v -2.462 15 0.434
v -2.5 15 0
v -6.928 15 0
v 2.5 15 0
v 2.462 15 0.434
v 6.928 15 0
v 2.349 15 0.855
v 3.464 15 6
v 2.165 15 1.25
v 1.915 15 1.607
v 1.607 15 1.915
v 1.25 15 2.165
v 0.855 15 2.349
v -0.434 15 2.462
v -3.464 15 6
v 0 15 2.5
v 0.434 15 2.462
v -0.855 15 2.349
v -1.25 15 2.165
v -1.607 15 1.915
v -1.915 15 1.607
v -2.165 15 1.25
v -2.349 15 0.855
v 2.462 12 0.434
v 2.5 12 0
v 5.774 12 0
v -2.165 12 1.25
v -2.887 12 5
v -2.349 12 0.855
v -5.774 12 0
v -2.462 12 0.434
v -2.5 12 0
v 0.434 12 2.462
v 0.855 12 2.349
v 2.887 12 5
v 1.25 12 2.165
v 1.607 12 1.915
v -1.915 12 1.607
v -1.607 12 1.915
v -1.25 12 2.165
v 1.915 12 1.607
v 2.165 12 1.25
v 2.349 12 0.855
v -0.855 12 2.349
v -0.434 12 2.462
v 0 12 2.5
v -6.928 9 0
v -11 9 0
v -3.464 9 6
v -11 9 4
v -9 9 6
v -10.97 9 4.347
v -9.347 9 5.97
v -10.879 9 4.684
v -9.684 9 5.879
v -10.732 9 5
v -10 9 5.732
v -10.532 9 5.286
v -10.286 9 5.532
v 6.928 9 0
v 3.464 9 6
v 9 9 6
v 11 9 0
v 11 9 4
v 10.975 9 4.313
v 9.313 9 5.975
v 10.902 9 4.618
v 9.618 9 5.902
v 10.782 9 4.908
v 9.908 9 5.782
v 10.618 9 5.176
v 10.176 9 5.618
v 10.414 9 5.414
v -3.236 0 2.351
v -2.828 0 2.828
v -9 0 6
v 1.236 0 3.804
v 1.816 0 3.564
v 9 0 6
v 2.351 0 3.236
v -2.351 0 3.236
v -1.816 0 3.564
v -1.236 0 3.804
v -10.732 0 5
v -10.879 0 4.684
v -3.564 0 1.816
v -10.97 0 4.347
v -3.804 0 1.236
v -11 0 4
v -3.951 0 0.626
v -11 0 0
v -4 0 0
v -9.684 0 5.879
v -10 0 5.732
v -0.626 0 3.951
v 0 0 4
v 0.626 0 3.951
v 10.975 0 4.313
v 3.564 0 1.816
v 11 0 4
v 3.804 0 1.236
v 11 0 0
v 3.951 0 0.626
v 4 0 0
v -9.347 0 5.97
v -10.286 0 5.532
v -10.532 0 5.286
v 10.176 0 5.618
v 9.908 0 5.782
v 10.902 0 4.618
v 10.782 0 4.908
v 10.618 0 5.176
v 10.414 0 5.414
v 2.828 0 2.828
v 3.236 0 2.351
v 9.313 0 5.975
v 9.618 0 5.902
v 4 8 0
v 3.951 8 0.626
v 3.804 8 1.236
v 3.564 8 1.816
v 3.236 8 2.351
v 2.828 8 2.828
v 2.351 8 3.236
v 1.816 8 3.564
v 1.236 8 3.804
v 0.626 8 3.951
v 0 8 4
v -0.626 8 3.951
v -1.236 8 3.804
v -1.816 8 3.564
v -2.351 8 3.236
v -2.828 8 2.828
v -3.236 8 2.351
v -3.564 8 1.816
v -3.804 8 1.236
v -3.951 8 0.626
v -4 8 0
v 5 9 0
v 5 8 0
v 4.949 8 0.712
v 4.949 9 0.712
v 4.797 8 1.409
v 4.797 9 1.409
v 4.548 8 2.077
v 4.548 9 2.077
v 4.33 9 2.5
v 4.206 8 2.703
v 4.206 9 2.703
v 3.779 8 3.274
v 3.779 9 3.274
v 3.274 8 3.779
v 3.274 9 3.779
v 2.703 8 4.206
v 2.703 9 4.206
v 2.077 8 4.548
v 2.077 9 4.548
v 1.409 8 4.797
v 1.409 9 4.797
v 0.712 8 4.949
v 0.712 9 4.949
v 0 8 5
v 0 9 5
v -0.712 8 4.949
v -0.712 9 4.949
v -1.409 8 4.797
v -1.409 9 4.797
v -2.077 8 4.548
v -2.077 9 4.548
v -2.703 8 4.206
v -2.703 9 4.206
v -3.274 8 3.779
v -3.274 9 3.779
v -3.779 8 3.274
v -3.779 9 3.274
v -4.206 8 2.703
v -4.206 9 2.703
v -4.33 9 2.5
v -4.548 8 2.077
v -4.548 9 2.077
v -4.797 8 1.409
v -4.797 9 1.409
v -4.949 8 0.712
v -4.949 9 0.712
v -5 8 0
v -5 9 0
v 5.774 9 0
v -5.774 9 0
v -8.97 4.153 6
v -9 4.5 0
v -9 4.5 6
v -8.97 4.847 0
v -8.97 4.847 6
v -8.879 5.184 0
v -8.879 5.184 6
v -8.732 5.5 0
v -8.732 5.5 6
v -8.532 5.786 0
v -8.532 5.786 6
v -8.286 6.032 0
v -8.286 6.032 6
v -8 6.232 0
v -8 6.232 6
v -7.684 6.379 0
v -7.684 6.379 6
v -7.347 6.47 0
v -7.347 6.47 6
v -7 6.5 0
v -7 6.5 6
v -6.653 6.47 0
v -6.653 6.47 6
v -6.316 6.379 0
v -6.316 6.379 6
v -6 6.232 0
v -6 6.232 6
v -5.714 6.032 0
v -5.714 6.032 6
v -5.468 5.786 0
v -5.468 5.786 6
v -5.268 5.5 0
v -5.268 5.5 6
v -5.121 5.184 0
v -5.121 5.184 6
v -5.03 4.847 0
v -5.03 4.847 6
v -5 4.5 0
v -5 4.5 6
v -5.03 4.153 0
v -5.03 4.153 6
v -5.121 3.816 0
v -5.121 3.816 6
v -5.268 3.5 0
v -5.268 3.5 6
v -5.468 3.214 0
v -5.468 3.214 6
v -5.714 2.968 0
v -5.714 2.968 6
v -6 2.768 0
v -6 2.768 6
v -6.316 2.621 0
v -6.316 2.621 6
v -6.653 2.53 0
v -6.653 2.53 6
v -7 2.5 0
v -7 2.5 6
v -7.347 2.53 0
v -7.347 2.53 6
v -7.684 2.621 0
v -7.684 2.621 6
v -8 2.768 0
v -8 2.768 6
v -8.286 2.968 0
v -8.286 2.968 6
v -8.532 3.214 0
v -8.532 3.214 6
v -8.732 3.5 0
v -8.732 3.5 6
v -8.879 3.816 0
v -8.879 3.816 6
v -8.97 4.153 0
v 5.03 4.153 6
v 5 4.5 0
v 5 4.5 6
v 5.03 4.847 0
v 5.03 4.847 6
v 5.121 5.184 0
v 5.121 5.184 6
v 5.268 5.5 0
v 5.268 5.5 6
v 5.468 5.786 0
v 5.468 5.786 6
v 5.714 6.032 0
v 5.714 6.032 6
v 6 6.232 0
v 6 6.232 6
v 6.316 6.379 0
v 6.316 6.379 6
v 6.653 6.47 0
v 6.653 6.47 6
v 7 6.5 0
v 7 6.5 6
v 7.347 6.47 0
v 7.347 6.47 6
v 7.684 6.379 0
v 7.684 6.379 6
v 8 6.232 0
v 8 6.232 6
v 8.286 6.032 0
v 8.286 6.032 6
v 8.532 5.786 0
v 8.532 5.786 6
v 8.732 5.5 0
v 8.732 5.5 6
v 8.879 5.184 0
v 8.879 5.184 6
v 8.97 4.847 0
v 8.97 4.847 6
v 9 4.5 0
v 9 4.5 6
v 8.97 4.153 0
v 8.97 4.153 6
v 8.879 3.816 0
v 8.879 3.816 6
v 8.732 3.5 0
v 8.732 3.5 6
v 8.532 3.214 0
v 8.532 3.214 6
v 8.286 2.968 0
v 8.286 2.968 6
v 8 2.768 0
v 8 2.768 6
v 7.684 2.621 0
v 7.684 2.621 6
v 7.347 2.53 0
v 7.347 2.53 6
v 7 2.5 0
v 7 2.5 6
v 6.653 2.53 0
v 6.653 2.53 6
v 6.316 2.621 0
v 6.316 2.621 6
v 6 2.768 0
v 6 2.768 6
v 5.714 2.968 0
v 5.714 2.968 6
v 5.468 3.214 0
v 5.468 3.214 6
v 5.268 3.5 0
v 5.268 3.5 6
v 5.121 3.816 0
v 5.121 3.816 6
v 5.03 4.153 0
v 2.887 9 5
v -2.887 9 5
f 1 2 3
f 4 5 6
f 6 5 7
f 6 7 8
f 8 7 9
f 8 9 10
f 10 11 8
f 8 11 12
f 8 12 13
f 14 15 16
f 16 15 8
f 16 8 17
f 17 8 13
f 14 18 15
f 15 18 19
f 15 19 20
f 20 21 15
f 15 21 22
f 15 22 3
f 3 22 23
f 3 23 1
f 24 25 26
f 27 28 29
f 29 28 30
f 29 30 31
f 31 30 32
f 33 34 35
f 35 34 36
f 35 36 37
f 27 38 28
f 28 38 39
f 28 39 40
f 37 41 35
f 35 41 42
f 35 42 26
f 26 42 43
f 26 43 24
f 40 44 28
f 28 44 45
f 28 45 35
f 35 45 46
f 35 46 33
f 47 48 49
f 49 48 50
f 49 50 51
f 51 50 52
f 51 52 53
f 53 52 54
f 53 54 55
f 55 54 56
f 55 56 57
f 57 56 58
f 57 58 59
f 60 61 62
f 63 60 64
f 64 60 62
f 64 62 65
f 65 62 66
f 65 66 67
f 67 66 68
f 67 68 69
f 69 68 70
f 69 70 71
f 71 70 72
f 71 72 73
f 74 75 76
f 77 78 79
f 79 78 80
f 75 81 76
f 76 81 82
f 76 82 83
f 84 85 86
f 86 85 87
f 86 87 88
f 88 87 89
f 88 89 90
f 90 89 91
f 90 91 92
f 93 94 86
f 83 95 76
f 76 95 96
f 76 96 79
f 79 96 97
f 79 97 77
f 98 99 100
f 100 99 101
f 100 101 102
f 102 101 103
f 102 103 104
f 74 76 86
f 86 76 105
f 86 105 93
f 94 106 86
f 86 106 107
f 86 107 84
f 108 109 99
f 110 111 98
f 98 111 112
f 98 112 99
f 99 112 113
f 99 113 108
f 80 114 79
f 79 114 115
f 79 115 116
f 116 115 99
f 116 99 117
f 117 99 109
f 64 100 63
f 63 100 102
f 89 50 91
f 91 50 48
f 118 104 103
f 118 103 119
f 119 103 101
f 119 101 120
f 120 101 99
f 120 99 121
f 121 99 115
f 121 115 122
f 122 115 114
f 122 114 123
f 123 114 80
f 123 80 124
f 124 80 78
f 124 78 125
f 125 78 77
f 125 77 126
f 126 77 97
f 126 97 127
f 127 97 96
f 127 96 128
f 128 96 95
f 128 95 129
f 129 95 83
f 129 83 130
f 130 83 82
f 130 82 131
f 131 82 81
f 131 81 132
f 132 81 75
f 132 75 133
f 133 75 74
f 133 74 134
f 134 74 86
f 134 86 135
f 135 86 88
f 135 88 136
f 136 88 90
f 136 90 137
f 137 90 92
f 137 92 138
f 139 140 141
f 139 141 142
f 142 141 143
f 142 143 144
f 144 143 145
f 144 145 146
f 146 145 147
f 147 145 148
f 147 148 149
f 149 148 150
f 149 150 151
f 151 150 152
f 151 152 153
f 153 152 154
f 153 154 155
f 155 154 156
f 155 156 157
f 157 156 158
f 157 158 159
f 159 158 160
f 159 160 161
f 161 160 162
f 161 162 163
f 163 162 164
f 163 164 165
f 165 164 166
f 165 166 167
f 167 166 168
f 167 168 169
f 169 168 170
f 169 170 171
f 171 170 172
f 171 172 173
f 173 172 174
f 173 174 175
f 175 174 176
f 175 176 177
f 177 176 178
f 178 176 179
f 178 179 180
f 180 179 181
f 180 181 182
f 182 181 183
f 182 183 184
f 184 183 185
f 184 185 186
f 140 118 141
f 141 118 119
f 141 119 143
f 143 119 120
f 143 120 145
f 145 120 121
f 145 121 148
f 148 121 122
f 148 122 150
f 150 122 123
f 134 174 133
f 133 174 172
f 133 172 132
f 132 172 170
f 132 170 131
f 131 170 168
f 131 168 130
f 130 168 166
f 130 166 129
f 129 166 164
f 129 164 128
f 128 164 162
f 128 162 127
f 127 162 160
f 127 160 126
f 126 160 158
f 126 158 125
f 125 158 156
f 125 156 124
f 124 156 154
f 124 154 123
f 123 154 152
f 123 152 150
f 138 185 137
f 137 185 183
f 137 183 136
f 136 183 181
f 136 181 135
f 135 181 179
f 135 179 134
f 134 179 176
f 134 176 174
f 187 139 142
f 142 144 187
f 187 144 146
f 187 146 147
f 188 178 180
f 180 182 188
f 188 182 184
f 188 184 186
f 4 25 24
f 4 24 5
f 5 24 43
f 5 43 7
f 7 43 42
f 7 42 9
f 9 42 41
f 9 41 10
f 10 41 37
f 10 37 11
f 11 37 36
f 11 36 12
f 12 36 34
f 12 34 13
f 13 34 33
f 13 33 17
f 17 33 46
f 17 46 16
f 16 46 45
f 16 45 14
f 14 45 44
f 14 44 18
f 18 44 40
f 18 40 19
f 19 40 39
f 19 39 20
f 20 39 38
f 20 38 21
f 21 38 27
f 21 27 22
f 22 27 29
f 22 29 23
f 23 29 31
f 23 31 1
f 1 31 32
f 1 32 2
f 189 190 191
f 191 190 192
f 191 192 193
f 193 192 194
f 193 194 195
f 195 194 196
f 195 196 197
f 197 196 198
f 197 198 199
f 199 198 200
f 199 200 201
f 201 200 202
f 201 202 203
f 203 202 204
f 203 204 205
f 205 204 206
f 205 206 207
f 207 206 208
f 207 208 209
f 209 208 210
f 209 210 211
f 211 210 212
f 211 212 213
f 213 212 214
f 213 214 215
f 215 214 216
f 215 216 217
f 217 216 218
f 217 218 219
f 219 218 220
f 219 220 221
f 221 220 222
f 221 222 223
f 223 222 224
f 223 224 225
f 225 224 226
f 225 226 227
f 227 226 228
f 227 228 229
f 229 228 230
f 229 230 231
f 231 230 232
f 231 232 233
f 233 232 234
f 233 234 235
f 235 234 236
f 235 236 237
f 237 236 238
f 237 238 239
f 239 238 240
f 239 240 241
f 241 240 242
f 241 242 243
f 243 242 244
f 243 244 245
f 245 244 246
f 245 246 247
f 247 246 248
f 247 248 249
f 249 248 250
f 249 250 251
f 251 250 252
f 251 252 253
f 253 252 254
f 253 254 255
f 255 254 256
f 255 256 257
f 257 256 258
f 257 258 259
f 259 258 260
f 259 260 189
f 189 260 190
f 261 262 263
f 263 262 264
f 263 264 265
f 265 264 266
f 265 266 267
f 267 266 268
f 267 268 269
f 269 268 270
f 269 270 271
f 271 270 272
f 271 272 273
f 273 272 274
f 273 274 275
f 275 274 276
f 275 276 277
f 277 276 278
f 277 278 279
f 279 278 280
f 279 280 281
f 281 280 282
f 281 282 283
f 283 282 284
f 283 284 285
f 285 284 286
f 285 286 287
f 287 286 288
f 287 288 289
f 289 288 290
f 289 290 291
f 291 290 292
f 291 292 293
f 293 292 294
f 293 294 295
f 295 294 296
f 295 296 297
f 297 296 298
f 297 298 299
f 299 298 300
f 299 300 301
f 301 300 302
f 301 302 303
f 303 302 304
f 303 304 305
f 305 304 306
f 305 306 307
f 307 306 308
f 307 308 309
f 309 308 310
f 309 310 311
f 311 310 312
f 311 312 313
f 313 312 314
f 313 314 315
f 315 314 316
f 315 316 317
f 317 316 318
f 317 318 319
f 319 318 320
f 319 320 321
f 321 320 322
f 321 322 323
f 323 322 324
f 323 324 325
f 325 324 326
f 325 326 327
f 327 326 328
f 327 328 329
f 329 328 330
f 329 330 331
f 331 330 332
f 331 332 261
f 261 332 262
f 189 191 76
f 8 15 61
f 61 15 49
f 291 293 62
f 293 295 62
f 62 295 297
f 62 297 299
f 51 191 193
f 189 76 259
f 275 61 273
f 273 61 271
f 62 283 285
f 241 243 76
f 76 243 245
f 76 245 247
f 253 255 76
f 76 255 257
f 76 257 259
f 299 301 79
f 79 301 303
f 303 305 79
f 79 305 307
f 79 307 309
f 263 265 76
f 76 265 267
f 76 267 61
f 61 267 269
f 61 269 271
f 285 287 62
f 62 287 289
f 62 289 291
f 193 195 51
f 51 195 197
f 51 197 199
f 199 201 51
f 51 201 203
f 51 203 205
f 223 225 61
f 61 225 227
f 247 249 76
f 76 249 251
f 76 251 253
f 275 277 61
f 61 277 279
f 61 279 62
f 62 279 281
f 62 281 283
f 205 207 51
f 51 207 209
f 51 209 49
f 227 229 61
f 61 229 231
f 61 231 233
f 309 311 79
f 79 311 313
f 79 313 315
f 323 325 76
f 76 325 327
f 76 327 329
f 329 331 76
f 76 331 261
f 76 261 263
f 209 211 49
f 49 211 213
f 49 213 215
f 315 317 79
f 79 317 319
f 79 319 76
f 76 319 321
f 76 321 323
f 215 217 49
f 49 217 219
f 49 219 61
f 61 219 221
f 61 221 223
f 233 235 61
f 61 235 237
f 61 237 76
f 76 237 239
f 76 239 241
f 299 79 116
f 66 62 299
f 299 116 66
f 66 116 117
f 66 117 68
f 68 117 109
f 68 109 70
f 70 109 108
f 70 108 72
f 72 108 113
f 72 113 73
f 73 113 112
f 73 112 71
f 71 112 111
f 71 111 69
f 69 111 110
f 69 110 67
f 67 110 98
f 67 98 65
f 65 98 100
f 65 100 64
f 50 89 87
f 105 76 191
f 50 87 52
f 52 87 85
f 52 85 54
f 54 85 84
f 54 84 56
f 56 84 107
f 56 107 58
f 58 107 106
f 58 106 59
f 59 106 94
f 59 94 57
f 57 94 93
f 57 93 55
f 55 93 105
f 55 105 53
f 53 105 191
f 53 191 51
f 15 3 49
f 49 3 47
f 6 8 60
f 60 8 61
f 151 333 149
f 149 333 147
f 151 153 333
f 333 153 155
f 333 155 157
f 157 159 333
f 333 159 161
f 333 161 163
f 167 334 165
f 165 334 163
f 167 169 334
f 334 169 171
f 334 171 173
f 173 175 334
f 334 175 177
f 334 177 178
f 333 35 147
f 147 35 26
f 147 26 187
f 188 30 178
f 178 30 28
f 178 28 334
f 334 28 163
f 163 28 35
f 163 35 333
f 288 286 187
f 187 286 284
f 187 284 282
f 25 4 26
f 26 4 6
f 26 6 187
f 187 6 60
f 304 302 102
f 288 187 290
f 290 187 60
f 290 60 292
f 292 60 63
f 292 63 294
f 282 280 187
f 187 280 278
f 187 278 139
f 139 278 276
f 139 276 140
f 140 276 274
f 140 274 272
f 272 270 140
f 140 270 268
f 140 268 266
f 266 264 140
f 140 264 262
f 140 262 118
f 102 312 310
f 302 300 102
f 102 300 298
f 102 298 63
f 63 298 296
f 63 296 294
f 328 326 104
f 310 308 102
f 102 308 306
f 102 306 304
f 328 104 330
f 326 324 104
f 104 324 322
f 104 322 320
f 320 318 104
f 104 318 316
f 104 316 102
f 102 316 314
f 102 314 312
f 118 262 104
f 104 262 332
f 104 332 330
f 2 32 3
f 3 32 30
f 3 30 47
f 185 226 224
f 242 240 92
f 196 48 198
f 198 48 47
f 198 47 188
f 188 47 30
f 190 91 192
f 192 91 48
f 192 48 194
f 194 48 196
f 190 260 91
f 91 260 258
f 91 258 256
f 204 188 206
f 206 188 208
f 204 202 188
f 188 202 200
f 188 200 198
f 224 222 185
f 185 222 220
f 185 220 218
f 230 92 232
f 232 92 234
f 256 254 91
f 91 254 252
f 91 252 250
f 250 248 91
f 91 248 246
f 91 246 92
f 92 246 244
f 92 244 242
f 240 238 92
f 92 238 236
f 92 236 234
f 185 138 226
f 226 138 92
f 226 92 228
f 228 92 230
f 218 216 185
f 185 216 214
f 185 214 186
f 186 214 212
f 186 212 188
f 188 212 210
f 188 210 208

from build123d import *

# Parameters (mm, degrees)
SKETCH_1_W           = 22
SKETCH_1_H           = 12
EXTRUDE_1_DEPTH      = 9
FILLET_1_R           = 2
SKETCH_2_R           = 4
CUT_EXTRUDE_1_DEPTH  = 8
SKETCH_3_R           = 5
CUT_EXTRUDE_2_DEPTH  = 1
EXTRUDE_2_DEPTH      = 6
CUT_EXTRUDE_5_DEPTH  = 3
SKETCH_8_R           = 2.5
CUT_EXTRUDE_6_DEPTH  = 6
SKETCH_11_R          = 2
CUT_EXTRUDE_9_DEPTH  = 23.135943621
SKETCH_12_W          = 27.17111841
SKETCH_12_H          = 33.234136994
CUT_EXTRUDE_10_DEPTH = 10


with BuildPart() as part:
    # Эскиз1 → Бобышка-Вытянуть1 (new body)
    with BuildSketch(Plane(origin=(0, 0, 0), x_dir=(1, 0, 0), z_dir=(0, 1, 0))):
        Rectangle(SKETCH_1_W, SKETCH_1_H)
    extrude(amount=EXTRUDE_1_DEPTH)

    # Скругление1
    fillet_1_edges = [part.edges().sort_by_distance(p)[0] for p in [
        (11, 4.5, 6),
        (-11, 4.5, 6),
        (-11, 4.5, -6),
        (11, 4.5, -6),
    ]]
    fillet(fillet_1_edges, radius=FILLET_1_R)

    # Эскиз2 → Вырез-Вытянуть1 (cut)
    with BuildSketch(Plane(origin=(0, 0, 0), x_dir=(1, 0, 0), z_dir=(0, 1, 0))):
        with Locations(Location((0, 0, 0), (0, 0, 270))):
            Circle(SKETCH_2_R)
    extrude(amount=CUT_EXTRUDE_1_DEPTH, mode=Mode.SUBTRACT)

    # Эскиз3 → Вырез-Вытянуть2 (cut)
    with BuildSketch(Plane.XZ.offset(-8)):
        with Locations(Location((0, 0, 0), (0, 0, 270))):
            Circle(SKETCH_3_R)
    extrude(amount=-CUT_EXTRUDE_2_DEPTH, mode=Mode.SUBTRACT)

    # Эскиз6 → Бобышка-Вытянуть2 (add)
    with BuildSketch(Plane(origin=(0, 9, 0), x_dir=(1, 0, 0), z_dir=(0, 1, 0))):
        Polygon((6.92820323, 0), (3.464101615, 6), (-3.464101615, 6), (-6.92820323, 0), (-3.464101615, -6), (3.464101615, -6), align=None)
    extrude(amount=EXTRUDE_2_DEPTH)

    # Эскиз7 → Вырез-Вытянуть5 (cut)
    with BuildSketch(Plane(origin=(0, 9, 0), x_dir=(1, 0, 0), z_dir=(0, 1, 0))):
        Polygon((5.773502692, 0), (2.886751346, 5), (-2.886751346, 5), (-5.773502692, 0), (-2.886751346, -5), (2.886751346, -5), align=None)
    extrude(amount=CUT_EXTRUDE_5_DEPTH, mode=Mode.SUBTRACT)

    # Эскиз8 → Вырез-Вытянуть6 (cut)
    with BuildSketch(Plane(origin=(0, 9, 0), x_dir=(1, 0, 0), z_dir=(0, 1, 0))):
        with Locations(Location((0, 0, 0), (0, 0, 90))):
            Circle(SKETCH_8_R)
    extrude(amount=CUT_EXTRUDE_6_DEPTH, mode=Mode.SUBTRACT)

    # Эскиз11 → Вырез-Вытянуть9 (cut, through all)
    with BuildSketch(Plane(origin=(0, 0, -6), x_dir=(-1, 0, 0), z_dir=(0, 0, -1))):
        with Locations((7, 4.5)):
            Circle(SKETCH_11_R)
    cut_extrude_9 = extrude(amount=-CUT_EXTRUDE_9_DEPTH, mode=Mode.SUBTRACT)

    # Зеркальное отражение6: Вырез-Вытянуть9 across plane
    add(cut_extrude_9.mirror(Plane(origin=(0, 0, 0), x_dir=(0, 0, 1), z_dir=(1, 0, 0))), mode=Mode.SUBTRACT)

    # Эскиз12 → Вырез-Вытянуть10 (cut)
    with BuildSketch(Plane.XY):
        Rectangle(SKETCH_12_W, SKETCH_12_H)
    extrude(amount=-CUT_EXTRUDE_10_DEPTH, mode=Mode.SUBTRACT)


solid = part.part
